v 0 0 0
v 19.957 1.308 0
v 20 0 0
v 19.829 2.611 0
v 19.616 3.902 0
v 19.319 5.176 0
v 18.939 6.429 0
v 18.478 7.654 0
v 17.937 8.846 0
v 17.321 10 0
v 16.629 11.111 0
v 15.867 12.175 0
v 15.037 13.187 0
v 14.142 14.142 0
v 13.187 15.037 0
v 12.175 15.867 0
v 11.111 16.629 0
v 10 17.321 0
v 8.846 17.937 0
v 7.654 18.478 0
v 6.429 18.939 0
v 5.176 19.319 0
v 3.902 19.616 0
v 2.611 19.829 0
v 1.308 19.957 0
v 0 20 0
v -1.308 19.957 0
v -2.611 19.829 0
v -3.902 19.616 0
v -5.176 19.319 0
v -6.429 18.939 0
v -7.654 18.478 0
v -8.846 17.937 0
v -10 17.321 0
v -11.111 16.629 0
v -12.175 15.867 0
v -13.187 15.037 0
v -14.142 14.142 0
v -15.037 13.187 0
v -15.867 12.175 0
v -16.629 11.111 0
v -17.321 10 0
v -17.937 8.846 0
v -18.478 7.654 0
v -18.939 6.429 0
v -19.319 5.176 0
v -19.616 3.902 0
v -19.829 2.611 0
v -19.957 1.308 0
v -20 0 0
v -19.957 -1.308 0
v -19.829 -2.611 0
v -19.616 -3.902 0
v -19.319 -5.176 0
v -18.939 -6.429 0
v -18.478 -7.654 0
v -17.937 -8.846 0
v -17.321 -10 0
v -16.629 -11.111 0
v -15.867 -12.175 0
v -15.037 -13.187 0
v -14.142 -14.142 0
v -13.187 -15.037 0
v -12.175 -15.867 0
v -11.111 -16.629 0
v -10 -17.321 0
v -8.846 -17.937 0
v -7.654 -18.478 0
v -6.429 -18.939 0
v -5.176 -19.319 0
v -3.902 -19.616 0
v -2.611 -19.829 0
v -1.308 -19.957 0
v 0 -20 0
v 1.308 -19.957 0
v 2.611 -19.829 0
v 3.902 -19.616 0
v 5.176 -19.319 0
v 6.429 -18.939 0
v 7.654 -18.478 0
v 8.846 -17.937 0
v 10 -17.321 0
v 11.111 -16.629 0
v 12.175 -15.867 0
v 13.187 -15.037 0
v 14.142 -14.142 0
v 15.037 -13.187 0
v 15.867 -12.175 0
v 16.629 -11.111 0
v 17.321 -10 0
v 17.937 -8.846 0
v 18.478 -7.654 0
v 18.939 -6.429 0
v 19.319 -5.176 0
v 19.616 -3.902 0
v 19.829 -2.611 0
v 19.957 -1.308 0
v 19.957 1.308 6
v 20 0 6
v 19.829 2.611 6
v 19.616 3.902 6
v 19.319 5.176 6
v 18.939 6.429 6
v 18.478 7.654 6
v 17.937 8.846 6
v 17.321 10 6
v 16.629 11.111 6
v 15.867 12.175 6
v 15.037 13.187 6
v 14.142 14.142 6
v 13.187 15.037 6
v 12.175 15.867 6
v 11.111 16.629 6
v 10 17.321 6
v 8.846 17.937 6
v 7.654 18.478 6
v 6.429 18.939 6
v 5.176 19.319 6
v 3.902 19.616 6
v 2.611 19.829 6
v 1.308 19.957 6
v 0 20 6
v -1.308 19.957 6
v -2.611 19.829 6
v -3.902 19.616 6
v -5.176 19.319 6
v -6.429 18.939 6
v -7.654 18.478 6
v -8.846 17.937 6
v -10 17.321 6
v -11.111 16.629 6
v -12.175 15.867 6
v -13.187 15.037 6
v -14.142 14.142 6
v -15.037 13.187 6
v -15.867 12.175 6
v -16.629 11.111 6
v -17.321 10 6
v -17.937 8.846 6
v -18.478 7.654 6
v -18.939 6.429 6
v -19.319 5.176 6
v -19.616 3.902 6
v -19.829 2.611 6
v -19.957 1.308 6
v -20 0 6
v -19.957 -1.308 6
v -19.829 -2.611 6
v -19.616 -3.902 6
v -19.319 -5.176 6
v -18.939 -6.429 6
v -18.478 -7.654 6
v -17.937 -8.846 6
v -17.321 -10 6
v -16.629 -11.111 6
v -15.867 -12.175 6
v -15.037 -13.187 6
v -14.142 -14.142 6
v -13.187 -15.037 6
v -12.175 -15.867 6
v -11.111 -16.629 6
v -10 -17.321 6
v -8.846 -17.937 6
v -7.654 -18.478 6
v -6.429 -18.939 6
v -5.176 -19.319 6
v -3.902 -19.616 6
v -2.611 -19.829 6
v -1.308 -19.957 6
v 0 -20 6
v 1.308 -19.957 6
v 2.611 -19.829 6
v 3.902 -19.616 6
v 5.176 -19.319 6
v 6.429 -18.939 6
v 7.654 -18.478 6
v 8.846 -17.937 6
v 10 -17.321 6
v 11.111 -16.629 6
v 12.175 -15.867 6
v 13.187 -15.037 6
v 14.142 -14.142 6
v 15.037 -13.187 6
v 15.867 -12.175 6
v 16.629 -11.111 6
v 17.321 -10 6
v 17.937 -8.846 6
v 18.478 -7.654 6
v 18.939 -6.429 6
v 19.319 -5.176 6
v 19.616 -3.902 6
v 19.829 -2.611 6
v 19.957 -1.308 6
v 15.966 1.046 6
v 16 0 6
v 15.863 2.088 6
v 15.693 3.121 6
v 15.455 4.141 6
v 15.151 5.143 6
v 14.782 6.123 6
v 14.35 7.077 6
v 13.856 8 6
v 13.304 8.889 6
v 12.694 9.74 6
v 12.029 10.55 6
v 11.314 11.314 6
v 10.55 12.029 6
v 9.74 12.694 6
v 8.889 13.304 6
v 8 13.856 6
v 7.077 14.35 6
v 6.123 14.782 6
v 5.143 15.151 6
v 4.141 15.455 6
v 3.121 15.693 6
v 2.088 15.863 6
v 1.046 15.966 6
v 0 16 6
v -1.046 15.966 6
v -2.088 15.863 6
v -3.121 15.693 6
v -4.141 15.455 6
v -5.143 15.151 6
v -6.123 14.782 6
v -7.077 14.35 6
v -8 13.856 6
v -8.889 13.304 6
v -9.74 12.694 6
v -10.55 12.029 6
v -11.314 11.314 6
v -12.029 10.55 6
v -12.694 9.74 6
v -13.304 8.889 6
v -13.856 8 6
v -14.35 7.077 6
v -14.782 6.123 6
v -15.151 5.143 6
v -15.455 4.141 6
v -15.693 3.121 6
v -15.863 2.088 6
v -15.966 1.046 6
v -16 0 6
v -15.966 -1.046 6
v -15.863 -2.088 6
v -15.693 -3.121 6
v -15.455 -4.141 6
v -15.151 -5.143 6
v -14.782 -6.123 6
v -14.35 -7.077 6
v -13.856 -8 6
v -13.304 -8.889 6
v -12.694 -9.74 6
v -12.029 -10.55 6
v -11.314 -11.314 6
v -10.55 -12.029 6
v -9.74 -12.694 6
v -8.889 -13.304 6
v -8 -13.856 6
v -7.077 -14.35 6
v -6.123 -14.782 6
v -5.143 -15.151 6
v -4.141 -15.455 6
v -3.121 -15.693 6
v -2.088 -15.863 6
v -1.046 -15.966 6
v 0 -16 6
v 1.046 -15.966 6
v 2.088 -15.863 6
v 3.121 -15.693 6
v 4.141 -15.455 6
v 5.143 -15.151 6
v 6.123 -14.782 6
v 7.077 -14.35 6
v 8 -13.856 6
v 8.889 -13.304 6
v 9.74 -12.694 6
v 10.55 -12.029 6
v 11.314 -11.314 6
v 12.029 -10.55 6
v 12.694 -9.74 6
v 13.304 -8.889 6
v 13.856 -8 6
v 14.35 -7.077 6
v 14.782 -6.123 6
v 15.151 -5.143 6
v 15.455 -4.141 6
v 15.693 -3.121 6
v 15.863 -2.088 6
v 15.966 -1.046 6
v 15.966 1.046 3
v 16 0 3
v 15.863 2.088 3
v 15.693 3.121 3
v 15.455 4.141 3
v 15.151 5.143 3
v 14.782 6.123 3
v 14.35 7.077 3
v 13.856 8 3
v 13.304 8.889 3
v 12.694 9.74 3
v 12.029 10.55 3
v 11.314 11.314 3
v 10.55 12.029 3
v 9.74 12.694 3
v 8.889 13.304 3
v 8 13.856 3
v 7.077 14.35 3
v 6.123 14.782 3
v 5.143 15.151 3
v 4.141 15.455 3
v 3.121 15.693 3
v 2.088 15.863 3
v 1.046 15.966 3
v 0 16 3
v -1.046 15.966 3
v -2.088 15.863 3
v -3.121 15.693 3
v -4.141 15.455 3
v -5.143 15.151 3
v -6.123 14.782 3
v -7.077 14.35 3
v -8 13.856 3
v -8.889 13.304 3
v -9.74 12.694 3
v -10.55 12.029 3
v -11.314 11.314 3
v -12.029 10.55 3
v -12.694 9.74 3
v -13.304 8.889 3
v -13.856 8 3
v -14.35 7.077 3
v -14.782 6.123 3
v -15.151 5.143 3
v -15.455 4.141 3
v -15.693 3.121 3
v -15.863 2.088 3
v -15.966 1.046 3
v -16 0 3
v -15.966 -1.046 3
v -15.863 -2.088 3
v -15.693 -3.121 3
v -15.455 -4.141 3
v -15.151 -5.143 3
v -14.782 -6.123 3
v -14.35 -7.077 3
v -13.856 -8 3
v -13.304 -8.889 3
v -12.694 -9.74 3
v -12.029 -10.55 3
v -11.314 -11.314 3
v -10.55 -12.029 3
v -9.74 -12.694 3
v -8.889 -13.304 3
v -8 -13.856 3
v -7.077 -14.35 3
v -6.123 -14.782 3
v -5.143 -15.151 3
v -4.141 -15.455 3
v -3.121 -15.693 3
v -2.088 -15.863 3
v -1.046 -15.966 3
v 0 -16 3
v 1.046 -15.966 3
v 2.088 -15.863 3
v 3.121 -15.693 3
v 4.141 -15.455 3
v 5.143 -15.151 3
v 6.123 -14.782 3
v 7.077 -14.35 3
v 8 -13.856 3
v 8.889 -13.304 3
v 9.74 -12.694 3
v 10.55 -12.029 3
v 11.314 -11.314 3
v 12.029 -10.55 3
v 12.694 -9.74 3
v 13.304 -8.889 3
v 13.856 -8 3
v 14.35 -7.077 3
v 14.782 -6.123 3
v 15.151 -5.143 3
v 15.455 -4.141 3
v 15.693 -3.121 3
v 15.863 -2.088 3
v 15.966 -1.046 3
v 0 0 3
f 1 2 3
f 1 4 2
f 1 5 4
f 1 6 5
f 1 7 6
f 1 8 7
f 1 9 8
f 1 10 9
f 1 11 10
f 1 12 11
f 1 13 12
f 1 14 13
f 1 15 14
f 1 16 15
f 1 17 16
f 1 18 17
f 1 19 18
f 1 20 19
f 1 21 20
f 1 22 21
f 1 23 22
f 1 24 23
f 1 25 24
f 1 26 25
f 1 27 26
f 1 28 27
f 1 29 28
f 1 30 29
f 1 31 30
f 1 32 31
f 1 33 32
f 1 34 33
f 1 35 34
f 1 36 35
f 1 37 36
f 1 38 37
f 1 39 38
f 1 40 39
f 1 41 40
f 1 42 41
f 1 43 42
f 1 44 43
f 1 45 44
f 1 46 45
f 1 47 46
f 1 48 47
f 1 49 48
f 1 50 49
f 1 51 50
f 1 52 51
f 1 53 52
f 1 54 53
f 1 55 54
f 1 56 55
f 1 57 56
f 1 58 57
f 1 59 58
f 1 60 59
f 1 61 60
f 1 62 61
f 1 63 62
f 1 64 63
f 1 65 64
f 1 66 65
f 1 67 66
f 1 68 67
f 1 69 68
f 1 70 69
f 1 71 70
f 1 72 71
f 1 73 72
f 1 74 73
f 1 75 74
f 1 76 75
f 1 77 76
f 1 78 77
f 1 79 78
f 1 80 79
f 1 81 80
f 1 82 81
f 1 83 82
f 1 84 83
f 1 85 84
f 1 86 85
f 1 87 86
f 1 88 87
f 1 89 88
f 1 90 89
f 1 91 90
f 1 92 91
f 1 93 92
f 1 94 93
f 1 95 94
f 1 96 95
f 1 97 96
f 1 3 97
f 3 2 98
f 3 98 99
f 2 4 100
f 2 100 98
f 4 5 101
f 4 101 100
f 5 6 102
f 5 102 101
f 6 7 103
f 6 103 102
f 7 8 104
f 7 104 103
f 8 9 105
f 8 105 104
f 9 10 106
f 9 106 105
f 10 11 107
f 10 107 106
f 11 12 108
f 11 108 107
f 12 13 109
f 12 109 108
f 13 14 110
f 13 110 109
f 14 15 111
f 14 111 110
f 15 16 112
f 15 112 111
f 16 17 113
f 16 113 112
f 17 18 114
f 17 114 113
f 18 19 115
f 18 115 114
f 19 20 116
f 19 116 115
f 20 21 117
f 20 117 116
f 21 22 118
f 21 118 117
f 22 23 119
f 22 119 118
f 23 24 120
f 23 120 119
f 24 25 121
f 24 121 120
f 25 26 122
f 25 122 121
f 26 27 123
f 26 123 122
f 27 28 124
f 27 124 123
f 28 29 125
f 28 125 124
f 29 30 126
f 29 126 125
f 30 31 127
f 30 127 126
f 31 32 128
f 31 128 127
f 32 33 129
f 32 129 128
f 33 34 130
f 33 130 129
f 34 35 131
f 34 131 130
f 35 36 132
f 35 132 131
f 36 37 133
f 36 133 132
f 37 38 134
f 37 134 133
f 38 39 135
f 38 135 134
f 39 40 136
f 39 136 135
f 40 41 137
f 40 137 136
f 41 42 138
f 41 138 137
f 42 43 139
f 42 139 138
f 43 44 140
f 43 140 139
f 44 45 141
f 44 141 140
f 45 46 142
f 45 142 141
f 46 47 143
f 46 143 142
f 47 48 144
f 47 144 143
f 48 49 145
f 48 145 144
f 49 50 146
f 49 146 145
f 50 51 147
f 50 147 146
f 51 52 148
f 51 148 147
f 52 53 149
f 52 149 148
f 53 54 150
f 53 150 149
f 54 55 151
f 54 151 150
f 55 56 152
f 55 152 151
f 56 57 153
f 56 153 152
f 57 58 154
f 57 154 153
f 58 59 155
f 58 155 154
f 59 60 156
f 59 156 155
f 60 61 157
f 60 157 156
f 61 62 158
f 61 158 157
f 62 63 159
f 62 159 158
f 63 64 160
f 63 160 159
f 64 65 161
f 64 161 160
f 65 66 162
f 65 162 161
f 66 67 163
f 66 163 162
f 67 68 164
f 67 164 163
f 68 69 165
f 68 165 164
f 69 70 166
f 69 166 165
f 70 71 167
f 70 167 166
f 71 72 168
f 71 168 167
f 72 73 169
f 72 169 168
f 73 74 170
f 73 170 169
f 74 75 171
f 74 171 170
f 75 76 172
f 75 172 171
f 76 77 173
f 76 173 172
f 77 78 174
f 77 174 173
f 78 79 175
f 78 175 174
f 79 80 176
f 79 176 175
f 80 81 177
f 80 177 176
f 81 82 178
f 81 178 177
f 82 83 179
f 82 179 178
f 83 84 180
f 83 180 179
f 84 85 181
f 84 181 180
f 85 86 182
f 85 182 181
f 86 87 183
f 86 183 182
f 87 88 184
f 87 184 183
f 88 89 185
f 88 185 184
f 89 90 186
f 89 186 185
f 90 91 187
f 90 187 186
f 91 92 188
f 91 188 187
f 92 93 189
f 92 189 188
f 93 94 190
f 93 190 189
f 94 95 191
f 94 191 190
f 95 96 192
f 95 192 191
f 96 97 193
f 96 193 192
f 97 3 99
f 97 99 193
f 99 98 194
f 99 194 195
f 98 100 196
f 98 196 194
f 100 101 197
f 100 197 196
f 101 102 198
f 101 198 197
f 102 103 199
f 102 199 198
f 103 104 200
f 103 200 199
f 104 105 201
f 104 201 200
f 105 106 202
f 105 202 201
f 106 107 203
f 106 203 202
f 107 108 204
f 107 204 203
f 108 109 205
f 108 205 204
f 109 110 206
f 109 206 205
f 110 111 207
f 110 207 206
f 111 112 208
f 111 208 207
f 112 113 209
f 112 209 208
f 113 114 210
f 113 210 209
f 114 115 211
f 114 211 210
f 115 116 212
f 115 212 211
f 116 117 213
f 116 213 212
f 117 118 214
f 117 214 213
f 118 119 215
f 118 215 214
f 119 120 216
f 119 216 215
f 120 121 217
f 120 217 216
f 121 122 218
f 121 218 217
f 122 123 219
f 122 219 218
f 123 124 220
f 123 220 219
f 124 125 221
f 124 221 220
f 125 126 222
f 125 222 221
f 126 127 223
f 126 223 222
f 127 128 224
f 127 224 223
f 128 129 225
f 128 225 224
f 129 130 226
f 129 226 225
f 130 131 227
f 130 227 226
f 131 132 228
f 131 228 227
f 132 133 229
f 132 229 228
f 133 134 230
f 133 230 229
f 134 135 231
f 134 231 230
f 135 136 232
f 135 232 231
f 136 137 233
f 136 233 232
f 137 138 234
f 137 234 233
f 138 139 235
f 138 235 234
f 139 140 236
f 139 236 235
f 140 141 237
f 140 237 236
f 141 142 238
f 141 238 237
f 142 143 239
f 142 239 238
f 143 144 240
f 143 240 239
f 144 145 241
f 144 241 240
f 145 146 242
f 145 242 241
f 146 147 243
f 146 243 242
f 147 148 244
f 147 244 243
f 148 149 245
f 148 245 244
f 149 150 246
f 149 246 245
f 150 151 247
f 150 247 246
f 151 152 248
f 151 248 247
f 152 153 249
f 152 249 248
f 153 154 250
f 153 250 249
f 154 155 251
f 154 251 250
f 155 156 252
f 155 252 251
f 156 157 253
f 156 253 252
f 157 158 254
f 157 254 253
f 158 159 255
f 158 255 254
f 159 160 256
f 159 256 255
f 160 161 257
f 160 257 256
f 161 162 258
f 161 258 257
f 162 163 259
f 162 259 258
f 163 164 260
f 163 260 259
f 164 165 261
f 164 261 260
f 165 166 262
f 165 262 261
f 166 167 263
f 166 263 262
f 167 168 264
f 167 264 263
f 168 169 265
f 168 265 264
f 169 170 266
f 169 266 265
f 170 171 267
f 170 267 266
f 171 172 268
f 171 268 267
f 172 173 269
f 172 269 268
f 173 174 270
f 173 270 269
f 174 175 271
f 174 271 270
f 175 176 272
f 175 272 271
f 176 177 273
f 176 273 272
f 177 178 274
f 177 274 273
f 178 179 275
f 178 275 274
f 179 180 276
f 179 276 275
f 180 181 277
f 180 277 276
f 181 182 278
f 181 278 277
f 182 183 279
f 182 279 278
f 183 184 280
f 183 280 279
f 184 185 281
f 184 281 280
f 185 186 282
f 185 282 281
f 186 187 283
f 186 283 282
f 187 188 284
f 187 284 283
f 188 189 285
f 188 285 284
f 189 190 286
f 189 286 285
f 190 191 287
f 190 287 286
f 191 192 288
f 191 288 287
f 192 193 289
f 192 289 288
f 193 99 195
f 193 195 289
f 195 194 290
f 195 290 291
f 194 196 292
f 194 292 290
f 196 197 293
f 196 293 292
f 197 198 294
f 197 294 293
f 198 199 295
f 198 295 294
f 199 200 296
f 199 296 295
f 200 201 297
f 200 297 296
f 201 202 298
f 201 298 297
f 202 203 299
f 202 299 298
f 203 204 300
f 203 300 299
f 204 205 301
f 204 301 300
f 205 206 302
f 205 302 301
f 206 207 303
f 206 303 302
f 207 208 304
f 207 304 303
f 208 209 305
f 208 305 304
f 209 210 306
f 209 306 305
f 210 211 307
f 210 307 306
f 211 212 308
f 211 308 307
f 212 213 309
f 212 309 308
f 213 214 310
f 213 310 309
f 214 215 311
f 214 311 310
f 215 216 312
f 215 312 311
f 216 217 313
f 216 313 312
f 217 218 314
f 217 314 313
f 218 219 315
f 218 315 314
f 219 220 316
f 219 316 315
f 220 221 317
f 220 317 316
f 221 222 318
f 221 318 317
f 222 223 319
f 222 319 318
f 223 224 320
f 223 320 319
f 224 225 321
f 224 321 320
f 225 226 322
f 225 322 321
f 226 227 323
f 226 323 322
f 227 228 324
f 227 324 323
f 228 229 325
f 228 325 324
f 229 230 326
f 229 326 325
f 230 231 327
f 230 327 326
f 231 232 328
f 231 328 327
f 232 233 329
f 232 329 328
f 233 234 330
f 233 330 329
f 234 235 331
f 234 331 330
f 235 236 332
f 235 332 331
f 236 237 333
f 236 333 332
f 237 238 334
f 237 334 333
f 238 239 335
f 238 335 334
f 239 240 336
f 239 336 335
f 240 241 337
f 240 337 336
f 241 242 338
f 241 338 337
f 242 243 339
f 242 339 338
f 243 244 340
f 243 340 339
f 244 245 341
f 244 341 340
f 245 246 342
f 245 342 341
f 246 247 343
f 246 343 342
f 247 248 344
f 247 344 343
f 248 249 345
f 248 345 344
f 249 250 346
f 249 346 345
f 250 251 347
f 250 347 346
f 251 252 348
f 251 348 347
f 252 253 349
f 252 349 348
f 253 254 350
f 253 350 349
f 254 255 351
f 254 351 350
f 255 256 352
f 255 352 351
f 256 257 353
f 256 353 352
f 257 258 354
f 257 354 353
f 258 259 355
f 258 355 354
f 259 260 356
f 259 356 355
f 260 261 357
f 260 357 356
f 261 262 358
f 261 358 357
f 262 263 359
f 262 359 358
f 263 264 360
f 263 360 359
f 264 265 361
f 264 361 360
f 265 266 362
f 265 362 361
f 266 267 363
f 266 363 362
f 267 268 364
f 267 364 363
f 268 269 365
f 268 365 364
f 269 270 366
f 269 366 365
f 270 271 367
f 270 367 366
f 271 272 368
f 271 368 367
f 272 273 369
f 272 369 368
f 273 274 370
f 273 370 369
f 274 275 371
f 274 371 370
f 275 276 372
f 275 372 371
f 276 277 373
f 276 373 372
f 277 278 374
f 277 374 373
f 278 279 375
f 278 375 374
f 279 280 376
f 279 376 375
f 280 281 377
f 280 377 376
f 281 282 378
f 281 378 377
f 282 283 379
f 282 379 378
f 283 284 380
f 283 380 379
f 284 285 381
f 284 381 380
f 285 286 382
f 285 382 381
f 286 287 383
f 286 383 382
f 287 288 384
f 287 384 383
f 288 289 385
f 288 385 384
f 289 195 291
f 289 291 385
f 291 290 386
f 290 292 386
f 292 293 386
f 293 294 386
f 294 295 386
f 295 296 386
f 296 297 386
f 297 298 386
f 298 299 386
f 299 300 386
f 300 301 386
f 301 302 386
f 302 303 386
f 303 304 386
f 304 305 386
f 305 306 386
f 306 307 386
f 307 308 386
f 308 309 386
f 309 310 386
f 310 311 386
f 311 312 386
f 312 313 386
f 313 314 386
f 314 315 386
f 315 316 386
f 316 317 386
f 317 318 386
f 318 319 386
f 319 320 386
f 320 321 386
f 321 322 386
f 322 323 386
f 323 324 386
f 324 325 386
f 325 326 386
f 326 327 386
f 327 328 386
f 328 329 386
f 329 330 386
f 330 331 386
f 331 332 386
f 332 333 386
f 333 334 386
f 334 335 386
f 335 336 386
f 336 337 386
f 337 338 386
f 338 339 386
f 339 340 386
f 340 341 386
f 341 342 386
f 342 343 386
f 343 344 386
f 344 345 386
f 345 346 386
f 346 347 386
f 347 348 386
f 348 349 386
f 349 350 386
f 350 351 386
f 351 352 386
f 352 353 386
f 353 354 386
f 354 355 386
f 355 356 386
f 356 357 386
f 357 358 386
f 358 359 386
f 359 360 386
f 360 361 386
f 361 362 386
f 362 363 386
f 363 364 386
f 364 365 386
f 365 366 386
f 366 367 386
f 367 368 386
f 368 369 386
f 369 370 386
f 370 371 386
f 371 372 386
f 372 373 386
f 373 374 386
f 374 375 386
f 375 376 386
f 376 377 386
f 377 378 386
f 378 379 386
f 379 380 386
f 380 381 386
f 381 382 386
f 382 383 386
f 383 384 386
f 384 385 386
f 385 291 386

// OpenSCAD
// Original MechIntel educational model. CC0-1.0. Units: mm.
// Not a standardized or load-rated component.
$fn=96;
// Section points: [radius, height], mm. Edit to change the profile.
section=[[0, 0], [20, 0], [20, 6], [16, 6], [16, 3], [0, 3]];
rotate_extrude($fn=96) polygon(points=section);
